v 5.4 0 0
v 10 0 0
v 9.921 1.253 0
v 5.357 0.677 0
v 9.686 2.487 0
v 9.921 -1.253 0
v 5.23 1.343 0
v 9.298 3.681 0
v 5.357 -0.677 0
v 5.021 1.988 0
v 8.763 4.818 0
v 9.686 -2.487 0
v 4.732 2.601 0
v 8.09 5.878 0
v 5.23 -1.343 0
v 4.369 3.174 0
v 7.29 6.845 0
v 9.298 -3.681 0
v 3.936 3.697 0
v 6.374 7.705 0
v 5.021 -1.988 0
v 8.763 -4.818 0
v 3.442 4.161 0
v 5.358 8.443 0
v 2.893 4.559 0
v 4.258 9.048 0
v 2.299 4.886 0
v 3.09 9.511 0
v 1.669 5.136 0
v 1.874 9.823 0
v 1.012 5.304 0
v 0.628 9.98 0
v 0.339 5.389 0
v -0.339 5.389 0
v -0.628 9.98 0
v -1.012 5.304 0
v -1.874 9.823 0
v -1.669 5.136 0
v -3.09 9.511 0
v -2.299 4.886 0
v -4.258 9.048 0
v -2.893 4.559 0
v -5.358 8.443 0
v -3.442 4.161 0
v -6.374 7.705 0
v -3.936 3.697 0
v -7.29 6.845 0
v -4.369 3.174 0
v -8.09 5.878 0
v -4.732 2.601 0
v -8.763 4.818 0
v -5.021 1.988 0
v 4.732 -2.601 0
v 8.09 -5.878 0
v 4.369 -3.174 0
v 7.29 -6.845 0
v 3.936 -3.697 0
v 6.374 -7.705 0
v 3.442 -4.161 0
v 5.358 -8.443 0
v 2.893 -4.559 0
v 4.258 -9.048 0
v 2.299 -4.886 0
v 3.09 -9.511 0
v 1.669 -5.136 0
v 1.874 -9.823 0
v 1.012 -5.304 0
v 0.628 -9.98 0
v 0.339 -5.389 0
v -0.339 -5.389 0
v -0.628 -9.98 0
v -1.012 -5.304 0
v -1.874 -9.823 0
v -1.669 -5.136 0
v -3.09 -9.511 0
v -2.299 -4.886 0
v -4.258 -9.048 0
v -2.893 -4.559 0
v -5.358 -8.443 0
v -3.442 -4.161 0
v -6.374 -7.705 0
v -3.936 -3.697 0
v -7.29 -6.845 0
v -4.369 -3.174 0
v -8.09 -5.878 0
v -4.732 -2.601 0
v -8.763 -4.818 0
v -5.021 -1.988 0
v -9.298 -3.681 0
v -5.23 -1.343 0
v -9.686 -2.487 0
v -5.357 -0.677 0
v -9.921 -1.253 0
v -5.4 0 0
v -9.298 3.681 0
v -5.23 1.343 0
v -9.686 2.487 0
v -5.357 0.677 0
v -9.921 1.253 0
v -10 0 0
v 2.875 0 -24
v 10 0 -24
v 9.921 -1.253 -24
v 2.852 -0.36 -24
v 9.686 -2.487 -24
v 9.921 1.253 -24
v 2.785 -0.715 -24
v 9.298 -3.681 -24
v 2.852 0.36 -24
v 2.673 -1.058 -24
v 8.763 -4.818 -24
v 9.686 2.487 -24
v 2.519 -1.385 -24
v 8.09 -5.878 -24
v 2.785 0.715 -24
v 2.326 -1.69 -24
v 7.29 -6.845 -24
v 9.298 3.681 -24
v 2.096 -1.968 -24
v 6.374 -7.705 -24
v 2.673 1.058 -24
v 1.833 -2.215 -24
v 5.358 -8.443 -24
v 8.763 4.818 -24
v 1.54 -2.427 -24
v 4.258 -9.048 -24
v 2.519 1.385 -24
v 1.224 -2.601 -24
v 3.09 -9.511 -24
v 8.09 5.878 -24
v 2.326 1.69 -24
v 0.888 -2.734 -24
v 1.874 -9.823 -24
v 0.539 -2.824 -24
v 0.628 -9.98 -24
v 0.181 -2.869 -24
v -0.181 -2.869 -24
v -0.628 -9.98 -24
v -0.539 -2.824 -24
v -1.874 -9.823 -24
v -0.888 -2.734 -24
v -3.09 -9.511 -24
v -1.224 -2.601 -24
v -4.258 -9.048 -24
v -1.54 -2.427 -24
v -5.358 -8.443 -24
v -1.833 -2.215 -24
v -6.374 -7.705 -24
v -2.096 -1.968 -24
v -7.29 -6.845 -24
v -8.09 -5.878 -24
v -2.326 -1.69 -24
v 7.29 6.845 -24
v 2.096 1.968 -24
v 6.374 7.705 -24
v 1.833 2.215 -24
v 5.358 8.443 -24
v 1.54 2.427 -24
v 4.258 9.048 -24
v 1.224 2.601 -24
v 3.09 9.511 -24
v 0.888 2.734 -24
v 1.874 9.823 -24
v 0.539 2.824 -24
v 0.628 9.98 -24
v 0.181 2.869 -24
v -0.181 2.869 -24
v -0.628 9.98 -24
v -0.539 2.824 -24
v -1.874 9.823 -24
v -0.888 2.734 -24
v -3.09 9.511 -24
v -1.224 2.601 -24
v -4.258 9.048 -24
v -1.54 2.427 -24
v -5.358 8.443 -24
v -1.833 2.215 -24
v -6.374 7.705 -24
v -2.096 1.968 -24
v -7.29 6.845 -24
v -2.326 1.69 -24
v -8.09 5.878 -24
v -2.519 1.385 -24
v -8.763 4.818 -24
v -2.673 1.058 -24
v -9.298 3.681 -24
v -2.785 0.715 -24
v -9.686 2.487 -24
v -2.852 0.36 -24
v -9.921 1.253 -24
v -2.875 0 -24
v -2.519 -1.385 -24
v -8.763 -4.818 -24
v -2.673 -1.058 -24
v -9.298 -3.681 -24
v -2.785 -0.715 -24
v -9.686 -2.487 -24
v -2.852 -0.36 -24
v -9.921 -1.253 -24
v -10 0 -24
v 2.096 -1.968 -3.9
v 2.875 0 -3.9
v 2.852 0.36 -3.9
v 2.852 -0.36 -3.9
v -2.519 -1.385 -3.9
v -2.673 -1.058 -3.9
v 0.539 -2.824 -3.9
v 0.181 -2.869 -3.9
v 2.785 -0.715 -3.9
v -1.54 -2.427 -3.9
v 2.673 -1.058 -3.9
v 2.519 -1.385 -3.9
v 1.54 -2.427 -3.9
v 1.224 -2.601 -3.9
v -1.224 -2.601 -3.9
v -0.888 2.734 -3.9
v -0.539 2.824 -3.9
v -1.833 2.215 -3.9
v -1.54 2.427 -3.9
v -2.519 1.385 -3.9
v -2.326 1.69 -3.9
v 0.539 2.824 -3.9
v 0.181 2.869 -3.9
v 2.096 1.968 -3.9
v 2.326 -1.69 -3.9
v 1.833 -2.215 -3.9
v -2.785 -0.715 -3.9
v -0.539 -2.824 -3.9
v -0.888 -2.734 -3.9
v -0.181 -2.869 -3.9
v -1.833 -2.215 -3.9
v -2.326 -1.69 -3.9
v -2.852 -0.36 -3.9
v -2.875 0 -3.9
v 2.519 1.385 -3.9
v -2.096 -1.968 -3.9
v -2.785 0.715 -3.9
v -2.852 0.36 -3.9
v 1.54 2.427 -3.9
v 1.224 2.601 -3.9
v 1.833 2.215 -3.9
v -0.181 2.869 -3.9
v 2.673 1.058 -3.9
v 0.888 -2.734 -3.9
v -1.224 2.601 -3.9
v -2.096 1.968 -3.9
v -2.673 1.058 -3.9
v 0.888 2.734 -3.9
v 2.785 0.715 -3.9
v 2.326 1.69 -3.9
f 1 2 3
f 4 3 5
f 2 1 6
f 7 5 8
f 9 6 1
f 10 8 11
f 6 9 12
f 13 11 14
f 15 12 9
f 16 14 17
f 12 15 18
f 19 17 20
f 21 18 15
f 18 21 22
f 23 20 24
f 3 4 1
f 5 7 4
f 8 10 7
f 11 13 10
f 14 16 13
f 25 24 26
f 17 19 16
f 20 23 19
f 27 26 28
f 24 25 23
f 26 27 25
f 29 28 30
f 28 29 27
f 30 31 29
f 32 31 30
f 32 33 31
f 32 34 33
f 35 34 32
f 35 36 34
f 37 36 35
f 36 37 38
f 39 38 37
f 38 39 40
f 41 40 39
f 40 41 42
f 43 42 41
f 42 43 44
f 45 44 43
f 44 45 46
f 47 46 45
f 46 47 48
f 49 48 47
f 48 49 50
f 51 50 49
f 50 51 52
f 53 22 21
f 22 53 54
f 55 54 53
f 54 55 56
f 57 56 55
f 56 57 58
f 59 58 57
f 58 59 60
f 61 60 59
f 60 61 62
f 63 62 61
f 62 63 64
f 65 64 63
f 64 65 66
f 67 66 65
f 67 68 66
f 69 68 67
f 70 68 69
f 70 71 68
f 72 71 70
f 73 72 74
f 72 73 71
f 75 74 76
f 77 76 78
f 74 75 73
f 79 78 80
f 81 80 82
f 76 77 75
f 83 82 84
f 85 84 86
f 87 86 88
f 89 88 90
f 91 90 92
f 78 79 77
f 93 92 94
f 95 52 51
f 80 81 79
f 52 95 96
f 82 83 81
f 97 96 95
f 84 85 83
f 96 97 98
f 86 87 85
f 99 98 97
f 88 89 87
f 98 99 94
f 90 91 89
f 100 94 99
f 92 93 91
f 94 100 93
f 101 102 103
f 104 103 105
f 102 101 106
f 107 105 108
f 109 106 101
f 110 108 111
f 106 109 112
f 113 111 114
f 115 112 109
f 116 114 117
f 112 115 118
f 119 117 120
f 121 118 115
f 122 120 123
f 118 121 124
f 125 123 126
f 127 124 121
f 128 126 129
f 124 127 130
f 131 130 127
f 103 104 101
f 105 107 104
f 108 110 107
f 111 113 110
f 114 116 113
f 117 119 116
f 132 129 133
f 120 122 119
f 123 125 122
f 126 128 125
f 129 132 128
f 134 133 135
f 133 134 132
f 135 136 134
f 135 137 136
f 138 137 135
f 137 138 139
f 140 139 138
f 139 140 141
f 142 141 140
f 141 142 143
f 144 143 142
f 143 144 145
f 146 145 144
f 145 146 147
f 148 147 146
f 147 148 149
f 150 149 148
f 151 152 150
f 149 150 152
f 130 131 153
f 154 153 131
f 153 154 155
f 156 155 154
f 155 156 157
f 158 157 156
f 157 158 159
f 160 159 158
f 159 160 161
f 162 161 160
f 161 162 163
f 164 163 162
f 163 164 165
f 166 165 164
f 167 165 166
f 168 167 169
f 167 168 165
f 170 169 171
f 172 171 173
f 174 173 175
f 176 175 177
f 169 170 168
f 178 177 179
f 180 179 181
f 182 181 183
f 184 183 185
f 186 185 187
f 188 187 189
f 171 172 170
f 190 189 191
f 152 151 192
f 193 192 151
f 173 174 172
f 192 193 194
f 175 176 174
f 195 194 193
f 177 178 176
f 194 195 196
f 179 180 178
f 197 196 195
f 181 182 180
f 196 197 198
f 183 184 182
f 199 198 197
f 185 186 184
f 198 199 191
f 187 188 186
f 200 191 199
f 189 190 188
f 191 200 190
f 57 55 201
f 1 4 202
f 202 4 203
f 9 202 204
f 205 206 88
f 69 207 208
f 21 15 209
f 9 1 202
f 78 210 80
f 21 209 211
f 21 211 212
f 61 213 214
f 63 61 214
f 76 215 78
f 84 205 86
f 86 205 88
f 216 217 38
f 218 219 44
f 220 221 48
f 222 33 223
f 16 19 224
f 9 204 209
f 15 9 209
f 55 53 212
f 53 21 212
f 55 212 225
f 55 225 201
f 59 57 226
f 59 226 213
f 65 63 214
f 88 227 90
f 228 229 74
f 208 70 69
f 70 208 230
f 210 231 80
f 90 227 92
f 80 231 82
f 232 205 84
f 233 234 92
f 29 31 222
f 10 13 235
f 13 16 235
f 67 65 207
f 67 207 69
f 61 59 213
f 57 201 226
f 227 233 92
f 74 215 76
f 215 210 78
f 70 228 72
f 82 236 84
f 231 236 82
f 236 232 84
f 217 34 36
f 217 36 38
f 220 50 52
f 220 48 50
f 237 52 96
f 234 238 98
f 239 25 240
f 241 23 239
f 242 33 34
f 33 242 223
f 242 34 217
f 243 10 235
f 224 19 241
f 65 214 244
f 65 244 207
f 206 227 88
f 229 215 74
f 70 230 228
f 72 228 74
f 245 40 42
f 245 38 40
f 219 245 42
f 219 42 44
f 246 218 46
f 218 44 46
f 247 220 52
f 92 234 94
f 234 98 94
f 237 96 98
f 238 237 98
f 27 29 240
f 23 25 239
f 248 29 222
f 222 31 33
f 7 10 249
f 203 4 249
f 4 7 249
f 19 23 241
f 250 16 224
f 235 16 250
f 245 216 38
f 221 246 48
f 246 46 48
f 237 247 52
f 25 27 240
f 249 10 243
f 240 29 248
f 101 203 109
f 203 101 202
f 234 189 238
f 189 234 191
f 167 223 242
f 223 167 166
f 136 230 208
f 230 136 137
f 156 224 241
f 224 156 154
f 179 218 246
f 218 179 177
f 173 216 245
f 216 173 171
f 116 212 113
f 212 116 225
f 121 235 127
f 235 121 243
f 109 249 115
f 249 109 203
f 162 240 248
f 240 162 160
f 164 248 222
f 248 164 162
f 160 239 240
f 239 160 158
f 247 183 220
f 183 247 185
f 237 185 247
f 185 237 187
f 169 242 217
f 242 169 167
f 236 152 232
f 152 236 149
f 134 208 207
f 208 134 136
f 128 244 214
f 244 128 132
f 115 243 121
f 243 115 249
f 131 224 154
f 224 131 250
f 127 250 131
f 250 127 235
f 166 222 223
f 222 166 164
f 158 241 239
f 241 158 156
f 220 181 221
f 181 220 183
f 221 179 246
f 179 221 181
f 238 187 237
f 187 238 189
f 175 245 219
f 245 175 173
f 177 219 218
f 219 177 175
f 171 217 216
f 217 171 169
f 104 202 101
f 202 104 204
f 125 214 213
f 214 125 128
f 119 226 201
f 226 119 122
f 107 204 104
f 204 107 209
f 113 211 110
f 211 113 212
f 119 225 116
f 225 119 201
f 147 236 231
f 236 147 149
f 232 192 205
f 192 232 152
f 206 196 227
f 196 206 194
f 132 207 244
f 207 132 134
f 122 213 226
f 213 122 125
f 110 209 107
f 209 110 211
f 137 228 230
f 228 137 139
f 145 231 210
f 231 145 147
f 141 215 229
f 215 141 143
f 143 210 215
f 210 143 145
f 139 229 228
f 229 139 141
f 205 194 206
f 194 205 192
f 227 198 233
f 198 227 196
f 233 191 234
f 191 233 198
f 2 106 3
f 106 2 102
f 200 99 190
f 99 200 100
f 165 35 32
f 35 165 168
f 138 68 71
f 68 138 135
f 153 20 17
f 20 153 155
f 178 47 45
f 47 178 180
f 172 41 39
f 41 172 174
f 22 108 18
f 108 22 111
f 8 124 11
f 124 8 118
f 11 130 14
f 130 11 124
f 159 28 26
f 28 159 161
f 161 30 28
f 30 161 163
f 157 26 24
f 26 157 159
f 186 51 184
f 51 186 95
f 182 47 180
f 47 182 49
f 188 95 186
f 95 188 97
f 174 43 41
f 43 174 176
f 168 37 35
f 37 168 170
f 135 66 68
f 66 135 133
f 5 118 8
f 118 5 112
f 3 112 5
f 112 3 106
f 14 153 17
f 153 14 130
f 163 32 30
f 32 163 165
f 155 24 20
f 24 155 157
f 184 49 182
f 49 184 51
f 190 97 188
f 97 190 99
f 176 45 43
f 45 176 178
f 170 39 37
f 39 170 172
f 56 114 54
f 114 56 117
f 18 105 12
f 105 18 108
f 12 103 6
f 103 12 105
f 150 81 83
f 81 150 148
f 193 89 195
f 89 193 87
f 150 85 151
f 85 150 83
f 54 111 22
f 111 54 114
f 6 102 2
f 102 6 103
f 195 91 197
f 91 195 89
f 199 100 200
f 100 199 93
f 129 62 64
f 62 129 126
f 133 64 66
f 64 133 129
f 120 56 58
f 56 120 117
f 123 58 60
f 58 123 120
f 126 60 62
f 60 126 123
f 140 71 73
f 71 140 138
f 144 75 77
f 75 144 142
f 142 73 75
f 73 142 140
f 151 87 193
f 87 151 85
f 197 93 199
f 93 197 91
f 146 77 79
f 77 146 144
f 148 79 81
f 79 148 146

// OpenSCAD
$fn = 50;


difference() {
	union() {
		translate(v = [0, 0, -24.0000000000]) {
			cylinder(h = 24, r = 10.0000000000);
		}
		cylinder(h = 0, r = 16.0000000000);
	}
	union() {
		translate(v = [0, 0, 0]) {
			rotate(a = [0, 0, 0]) {
				difference() {
					union() {
						#translate(v = [0, 0, -24.0000000000]) {
							cylinder(h = 24, r = 2.6000000000);
						}
						#translate(v = [0, 0, -3.9000000000]) {
							cylinder(h = 3.9000000000, r = 10.0000000000, r1 = 2.8750000000, r2 = 5.4000000000);
						}
						#translate(v = [0, 0, -24.0000000000]) {
							cylinder(h = 24, r = 2.8750000000);
						}
						#translate(v = [0, 0, -24.0000000000]) {
							cylinder(h = 24, r = 2.6000000000);
						}
					}
					union();
				}
			}
		}
	}
}
